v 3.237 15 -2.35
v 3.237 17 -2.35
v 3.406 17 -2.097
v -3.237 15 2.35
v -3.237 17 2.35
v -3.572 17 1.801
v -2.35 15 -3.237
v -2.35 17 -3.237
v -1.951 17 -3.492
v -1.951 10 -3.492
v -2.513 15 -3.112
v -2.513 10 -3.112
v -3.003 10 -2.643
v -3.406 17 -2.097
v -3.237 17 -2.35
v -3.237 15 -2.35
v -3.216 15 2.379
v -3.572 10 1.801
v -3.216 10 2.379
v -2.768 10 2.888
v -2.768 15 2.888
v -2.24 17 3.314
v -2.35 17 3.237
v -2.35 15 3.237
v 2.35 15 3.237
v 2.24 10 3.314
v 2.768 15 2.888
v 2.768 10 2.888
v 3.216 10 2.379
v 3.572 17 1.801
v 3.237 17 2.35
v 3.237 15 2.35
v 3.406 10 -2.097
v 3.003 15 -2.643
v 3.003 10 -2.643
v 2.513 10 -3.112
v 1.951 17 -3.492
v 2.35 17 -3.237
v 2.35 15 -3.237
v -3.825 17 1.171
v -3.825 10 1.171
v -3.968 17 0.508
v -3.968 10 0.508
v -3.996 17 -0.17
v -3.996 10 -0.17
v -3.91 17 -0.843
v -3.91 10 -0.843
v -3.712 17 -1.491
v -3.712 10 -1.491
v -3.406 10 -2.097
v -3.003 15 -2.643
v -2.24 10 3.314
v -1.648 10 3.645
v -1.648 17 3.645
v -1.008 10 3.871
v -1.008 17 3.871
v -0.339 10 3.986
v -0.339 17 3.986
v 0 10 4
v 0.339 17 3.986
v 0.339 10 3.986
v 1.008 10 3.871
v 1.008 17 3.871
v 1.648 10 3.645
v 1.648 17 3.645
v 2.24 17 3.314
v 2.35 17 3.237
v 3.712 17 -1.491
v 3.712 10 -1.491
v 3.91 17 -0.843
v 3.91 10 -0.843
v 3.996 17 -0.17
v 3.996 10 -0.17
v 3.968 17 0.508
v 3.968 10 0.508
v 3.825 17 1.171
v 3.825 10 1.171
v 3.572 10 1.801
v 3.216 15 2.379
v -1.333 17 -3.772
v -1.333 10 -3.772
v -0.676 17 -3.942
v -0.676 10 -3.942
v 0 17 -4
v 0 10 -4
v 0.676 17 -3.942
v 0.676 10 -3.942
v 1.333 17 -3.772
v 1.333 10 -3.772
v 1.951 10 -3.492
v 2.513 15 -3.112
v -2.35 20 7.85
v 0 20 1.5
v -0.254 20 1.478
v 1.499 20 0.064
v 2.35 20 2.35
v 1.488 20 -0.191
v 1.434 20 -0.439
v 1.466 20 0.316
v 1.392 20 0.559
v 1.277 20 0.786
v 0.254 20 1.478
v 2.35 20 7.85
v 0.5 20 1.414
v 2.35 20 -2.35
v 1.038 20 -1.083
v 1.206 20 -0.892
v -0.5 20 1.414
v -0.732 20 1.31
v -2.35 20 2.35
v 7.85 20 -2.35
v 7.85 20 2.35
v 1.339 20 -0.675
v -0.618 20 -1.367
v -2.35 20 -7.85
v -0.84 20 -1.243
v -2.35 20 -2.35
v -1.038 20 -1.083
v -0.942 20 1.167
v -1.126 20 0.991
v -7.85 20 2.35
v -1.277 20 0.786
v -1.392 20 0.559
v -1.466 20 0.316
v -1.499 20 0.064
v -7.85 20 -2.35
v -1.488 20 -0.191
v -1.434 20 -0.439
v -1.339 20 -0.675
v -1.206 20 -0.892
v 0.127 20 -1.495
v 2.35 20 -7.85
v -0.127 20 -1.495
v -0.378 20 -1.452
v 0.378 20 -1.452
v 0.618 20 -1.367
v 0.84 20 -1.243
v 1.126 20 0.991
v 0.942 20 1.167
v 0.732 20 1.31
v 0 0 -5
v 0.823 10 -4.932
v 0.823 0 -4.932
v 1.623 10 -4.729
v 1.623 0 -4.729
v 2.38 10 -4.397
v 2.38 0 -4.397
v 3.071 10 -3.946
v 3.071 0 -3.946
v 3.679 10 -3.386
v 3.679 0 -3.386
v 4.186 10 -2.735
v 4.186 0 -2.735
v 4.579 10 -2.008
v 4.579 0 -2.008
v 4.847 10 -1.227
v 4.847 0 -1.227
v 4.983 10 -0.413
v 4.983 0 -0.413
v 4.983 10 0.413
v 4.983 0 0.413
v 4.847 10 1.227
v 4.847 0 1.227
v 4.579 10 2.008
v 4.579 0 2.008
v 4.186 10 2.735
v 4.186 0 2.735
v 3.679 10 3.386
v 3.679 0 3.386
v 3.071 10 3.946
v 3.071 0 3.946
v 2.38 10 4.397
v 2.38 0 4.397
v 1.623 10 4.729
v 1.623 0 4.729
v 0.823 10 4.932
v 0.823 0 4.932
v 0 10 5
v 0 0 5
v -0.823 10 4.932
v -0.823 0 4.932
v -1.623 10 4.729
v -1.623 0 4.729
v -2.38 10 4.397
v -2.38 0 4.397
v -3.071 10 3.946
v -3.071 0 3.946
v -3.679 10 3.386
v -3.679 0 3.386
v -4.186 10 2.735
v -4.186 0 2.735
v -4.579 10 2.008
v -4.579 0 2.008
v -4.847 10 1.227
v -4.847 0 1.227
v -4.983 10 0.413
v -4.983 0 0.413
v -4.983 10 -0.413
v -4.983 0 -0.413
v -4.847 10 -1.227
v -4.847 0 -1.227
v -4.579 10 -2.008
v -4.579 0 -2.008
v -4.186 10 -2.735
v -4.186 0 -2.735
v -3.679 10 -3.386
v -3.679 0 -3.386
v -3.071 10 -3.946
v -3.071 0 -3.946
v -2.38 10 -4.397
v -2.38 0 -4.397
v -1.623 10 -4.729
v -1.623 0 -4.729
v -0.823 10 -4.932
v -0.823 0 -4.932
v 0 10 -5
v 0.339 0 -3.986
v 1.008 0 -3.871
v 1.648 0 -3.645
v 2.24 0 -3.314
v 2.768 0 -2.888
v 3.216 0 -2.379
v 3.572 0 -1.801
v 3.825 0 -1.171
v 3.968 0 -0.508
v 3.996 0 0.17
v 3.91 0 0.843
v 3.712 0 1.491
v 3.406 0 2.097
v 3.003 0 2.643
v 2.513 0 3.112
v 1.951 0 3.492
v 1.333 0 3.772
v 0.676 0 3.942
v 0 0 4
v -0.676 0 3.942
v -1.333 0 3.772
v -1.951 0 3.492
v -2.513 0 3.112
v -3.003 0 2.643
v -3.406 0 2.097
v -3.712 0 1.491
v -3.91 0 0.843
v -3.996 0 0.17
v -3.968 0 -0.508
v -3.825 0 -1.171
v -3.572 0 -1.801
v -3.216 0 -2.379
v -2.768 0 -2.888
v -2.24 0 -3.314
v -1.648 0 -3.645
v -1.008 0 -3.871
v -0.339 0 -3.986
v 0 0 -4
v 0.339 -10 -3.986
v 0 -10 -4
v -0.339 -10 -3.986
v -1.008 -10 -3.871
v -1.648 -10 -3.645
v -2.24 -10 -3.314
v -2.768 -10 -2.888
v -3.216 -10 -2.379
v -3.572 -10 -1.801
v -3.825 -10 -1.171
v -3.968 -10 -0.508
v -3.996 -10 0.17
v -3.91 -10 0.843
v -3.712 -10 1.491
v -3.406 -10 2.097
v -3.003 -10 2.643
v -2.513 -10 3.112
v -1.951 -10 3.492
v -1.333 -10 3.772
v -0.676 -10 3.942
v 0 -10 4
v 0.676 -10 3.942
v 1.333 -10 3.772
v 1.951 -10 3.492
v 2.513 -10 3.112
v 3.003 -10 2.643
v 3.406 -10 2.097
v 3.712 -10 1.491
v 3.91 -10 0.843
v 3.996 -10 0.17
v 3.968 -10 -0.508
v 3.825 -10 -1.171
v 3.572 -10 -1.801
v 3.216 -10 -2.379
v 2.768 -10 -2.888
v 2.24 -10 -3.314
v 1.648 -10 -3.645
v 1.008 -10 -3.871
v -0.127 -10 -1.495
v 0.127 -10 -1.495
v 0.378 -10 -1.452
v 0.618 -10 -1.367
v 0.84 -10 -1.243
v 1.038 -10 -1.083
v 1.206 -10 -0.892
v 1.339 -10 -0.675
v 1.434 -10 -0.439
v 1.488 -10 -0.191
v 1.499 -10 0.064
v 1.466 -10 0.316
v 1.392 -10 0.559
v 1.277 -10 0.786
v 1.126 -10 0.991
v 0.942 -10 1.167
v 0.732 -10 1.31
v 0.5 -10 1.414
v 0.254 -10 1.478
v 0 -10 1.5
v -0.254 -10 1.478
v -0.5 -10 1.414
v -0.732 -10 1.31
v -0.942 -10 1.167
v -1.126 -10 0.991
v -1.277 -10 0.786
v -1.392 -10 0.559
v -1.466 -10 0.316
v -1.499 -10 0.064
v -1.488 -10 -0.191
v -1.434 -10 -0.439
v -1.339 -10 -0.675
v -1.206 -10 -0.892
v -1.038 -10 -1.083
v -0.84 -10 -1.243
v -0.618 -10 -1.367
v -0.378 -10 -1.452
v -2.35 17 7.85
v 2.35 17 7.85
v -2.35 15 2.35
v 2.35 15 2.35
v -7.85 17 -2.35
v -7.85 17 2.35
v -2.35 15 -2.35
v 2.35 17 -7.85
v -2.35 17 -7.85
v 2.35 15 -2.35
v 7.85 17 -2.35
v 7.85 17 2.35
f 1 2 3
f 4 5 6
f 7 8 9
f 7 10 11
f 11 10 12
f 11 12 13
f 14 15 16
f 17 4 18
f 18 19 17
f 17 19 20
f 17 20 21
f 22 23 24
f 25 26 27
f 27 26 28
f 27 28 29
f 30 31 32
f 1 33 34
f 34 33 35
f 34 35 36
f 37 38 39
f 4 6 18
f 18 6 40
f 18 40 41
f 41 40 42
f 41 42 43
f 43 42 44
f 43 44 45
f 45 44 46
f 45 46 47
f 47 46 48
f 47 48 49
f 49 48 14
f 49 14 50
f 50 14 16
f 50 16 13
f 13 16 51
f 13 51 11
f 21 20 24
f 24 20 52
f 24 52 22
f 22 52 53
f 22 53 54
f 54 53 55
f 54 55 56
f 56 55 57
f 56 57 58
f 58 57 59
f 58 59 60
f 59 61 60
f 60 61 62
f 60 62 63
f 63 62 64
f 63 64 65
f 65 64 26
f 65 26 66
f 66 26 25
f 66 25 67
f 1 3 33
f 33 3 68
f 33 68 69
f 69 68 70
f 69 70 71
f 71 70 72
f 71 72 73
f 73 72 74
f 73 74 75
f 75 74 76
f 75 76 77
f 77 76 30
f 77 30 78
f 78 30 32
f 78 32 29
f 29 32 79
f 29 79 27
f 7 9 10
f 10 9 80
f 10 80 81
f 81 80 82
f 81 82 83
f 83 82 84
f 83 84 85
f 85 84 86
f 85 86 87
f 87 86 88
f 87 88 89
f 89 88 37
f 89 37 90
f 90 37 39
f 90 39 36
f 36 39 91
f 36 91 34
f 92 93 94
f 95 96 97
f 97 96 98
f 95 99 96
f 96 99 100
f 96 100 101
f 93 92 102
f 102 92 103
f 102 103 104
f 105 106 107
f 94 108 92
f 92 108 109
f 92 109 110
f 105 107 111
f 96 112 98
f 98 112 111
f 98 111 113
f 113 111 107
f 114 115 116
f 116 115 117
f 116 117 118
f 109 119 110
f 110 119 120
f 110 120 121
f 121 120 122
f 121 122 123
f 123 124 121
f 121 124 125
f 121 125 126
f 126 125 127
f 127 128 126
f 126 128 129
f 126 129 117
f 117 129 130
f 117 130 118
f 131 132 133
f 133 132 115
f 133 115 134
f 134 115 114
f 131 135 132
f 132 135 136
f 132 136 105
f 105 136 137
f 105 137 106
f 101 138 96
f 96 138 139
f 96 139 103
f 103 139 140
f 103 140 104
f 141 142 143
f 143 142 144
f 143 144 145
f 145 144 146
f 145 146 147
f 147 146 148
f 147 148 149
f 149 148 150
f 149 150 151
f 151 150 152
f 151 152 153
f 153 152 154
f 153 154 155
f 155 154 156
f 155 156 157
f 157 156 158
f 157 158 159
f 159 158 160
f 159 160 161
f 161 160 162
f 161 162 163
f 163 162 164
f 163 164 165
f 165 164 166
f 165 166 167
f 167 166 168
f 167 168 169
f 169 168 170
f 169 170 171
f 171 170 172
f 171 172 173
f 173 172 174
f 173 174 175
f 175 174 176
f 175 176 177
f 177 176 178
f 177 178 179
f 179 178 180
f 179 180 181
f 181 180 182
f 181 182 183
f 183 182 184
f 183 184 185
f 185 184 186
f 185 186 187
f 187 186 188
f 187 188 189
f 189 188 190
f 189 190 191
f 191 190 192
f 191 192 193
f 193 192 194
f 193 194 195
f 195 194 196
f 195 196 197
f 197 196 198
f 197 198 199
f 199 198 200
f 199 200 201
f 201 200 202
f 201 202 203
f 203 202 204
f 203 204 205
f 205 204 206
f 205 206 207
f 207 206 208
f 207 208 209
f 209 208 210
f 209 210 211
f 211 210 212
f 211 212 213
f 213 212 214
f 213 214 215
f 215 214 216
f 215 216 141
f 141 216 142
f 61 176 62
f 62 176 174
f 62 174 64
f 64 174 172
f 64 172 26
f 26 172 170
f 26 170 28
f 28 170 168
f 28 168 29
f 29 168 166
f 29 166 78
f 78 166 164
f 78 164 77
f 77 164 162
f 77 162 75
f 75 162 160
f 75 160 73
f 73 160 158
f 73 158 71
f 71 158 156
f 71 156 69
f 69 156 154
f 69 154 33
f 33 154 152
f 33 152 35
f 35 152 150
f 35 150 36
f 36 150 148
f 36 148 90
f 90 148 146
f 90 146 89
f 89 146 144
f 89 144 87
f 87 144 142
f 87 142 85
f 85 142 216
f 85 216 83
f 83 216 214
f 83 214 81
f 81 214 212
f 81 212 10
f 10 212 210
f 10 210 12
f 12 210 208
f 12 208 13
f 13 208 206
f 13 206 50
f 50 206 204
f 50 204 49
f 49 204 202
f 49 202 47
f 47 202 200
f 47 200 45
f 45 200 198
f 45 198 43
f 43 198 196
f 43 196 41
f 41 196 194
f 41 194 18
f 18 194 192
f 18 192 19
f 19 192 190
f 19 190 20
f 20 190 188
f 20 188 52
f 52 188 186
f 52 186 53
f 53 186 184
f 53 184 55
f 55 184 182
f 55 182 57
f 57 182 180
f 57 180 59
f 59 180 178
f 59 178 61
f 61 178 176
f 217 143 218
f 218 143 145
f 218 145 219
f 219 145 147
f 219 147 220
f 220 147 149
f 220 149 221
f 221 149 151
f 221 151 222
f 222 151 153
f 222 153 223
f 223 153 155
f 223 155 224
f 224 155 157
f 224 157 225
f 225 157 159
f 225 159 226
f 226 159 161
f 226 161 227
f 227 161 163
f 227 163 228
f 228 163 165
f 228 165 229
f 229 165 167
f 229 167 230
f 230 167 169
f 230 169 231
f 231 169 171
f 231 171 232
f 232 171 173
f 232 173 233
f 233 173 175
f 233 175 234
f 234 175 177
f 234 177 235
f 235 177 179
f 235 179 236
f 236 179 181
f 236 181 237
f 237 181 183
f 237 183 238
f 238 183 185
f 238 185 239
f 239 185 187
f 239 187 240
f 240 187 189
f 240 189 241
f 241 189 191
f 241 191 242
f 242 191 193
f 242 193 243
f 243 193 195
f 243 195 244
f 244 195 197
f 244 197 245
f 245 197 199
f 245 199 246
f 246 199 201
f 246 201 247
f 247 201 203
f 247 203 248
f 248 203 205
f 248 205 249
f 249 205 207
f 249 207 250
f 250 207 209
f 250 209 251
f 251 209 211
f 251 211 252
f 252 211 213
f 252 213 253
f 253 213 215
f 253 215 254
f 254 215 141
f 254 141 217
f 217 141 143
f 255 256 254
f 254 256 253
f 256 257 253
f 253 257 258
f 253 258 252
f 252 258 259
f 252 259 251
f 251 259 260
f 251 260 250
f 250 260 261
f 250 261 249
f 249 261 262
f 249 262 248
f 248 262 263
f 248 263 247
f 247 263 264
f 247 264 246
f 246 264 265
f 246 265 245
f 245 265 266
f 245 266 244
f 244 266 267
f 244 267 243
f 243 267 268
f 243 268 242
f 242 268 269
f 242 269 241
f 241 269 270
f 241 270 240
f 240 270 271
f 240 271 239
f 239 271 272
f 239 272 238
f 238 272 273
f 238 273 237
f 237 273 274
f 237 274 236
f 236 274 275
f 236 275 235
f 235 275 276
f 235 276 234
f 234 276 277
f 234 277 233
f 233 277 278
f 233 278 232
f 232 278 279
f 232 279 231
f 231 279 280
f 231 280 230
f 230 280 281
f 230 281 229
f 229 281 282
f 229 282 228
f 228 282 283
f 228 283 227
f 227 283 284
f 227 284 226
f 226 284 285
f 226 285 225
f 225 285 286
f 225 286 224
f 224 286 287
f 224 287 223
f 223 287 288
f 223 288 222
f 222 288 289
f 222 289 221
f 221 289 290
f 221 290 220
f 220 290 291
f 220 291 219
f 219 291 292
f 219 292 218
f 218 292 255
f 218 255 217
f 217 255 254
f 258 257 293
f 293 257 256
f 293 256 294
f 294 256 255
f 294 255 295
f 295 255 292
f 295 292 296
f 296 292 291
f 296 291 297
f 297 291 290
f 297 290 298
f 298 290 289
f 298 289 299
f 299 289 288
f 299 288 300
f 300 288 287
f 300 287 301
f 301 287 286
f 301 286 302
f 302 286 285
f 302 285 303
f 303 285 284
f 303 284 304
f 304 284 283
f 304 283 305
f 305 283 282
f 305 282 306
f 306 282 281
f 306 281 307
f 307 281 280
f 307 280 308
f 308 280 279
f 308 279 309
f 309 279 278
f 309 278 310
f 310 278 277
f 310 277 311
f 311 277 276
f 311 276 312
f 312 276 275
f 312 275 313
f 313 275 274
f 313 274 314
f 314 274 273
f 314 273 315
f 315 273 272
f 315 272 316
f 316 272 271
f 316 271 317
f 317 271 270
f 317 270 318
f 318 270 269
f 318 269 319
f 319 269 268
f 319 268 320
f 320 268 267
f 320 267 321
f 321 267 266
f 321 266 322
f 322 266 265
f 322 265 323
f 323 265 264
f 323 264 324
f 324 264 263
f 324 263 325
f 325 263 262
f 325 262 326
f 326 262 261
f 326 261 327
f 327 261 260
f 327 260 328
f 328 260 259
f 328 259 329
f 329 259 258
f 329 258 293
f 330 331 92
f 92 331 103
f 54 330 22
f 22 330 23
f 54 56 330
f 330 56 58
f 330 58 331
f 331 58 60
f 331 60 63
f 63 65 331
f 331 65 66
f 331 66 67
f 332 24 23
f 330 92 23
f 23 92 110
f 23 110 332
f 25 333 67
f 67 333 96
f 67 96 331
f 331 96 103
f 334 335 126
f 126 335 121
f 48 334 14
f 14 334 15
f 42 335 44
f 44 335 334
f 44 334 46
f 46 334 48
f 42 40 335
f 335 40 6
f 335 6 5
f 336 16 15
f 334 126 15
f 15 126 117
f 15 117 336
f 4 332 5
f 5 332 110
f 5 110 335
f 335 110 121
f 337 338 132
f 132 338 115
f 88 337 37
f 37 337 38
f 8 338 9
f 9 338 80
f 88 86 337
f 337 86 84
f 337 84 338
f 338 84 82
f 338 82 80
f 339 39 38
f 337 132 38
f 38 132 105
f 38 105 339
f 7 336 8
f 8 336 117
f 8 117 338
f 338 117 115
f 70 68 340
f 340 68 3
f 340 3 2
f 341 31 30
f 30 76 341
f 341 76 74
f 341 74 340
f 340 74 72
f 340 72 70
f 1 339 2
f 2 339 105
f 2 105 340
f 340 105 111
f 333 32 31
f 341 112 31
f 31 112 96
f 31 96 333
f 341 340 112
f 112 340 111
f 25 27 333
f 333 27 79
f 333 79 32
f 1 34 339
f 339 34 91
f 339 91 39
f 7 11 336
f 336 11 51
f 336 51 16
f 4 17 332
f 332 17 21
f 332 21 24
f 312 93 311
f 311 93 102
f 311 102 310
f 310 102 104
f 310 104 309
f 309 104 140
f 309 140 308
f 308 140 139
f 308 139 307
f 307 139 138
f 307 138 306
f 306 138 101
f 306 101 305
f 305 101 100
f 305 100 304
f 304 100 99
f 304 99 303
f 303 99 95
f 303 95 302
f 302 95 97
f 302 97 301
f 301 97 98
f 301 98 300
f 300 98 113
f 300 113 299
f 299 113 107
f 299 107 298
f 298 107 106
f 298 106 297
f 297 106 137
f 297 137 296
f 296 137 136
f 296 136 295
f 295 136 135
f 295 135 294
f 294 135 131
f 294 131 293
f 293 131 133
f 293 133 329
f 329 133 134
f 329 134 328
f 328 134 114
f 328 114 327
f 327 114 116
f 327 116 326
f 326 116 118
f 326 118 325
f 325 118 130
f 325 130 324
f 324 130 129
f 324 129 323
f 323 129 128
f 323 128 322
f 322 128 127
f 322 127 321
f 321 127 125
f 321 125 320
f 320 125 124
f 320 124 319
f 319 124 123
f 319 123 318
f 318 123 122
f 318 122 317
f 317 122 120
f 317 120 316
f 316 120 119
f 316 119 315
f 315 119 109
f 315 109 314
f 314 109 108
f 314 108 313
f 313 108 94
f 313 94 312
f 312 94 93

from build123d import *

# Parameters (mm, degrees)
SKETCH_1_R          = 5
EXTRUDE_4_DEPTH     = 10
SKETCH_4_R          = 4
EXTRUDE_5_DEPTH     = 10
EXTRUDE_START       = 10
SKETCH_5_R          = 4
EXTRUDE_6_DEPTH     = 10
EXTRUDE_START_2     = -3
SKETCH_6_W          = 4.7
SKETCH_6_H          = 4.7
EXTRUDE_7_DEPTH     = 3
CUT_EXTRUDE_START   = -5
CUT_EXTRUDE_1_DEPTH = 5
SKETCH_8_R          = 1.5
CUT_EXTRUDE_2_DEPTH = 32.98820095


with BuildPart() as part:
    # 草图1 → 凸台-拉伸4 (new body)
    with BuildSketch(Plane(origin=(0, 0, 0), x_dir=(1, 0, 0), z_dir=(0, 1, 0))):
        with Locations(Location((0, 0, 0), (0, 0, 270))):
            Circle(SKETCH_1_R)
    extrude(amount=EXTRUDE_4_DEPTH)

    # 草图4 → 凸台-拉伸5 (add)
    with BuildSketch(Plane(origin=(0, 10, 0), x_dir=(1, 0, 0), z_dir=(0, 1, 0))):
        with Locations(Location((0, 0, 0), (0, 0, 270))):
            Circle(SKETCH_4_R)
    extrude(amount=EXTRUDE_5_DEPTH)

    # 草图5 → 凸台-拉伸6 (add)
    with BuildSketch(Plane.XZ.offset(EXTRUDE_START)):
        with Locations(Location((0, 0, 0), (0, 0, 90))):
            Circle(SKETCH_5_R)
    extrude(amount=-EXTRUDE_6_DEPTH)

    # 草图6 → 凸台-拉伸7 (add)
    with BuildSketch(Plane(origin=(0, 20, 0), x_dir=(1, 0, 0), z_dir=(0, 1, 0)).offset(EXTRUDE_START_2)):
        with BuildLine():
            Line((-7.85, 2.35), (-7.85, -2.35))
            Line((-7.85, -2.35), (-3.236896662, -2.35))
            ThreePointArc((-3.236896662, -2.35), (-4, 0), (-3.236896662, 2.35))
            Line((-3.236896662, 2.35), (-7.85, 2.35))
        make_face()
        with BuildLine():
            Line((-2.35, 7.85), (-2.35, 3.236896662))
            ThreePointArc((-2.35, 3.236896662), (0, 4), (2.35, 3.236896662))
            Line((2.35, 3.236896662), (2.35, 7.85))
            Line((2.35, 7.85), (-2.35, 7.85))
        make_face()
        with BuildLine():
            ThreePointArc((4, 0), (3.804443892, -1.235397376), (3.236896662, -2.35))
            Line((3.236896662, -2.35), (7.85, -2.35))
            Line((7.85, -2.35), (7.85, 2.35))
            Line((7.85, 2.35), (3.236896662, 2.35))
            ThreePointArc((3.236896662, 2.35), (3.804443892, 1.235397376), (4, 0))
        make_face()
        with BuildLine():
            ThreePointArc((2.35, -3.236896662), (0, -4), (-2.35, -3.236896662))
            Line((-2.35, -3.236896662), (-2.35, -7.85))
            Line((-2.35, -7.85), (2.35, -7.85))
            Line((2.35, -7.85), (2.35, -3.236896662))
        make_face()
        with BuildLine():
            Line((2.35, -2.35), (-2.35, -2.35))
            Line((-2.35, -2.35), (-2.35, -3.236896662))
            ThreePointArc((-2.35, -3.236896662), (0, -4), (2.35, -3.236896662))
            Line((2.35, -3.236896662), (2.35, -2.35))
        make_face()
        with BuildLine():
            Line((2.35, 2.35), (2.35, -2.35))
            Line((2.35, -2.35), (3.236896662, -2.35))
            ThreePointArc((3.236896662, -2.35), (3.804443892, -1.235397376), (4, 0))
            ThreePointArc((4, 0), (3.804443892, 1.235397376), (3.236896662, 2.35))
            Line((3.236896662, 2.35), (2.35, 2.35))
        make_face()
        with BuildLine():
            Line((-2.35, 3.236896662), (-2.35, 2.35))
            Line((-2.35, 2.35), (2.35, 2.35))
            Line((2.35, 2.35), (2.35, 3.236896662))
            ThreePointArc((2.35, 3.236896662), (0, 4), (-2.35, 3.236896662))
        make_face()
        with BuildLine():
            ThreePointArc((-3.236896662, 2.35), (-4, 0), (-3.236896662, -2.35))
            Line((-3.236896662, -2.35), (-2.35, -2.35))
            Line((-2.35, -2.35), (-2.35, 2.35))
            Line((-2.35, 2.35), (-3.236896662, 2.35))
        make_face()
        Rectangle(SKETCH_6_W, SKETCH_6_H)
    extrude(amount=EXTRUDE_7_DEPTH)

    # 草图7 → 切除-拉伸1 (cut)
    with BuildSketch(Plane(origin=(0, 20, 0), x_dir=(1, 0, 0), z_dir=(0, 1, 0)).offset(CUT_EXTRUDE_START)):
        with BuildLine():
            Line((-2.35, -2.35), (-3.236896662, -2.35))
            ThreePointArc((-3.236896662, -2.35), (-2.828427125, -2.828427125), (-2.35, -3.236896662))
            Line((-2.35, -3.236896662), (-2.35, -2.35))
        make_face()
        with BuildLine():
            Line((3.236896662, -2.35), (2.35, -2.35))
            Line((2.35, -2.35), (2.35, -3.236896662))
            ThreePointArc((2.35, -3.236896662), (2.828427125, -2.828427125), (3.236896662, -2.35))
        make_face()
        with BuildLine():
            Line((2.35, 3.236896662), (2.35, 2.35))
            Line((2.35, 2.35), (3.236896662, 2.35))
            ThreePointArc((3.236896662, 2.35), (2.828427125, 2.828427125), (2.35, 3.236896662))
        make_face()
        with BuildLine():
            ThreePointArc((-2.35, 3.236896662), (-2.828427125, 2.828427125), (-3.236896662, 2.35))
            Line((-3.236896662, 2.35), (-2.35, 2.35))
            Line((-2.35, 2.35), (-2.35, 3.236896662))
        make_face()
    extrude(amount=CUT_EXTRUDE_1_DEPTH, mode=Mode.SUBTRACT)

    # 草图8 → 切除-拉伸2 (cut, through all)
    with BuildSketch(Plane(origin=(0, 20, 0), x_dir=(1, 0, 0), z_dir=(0, 1, 0))):
        with Locations(Location((0, 0, 0), (0, 0, 270))):
            Circle(SKETCH_8_R)
    extrude(amount=-CUT_EXTRUDE_2_DEPTH, mode=Mode.SUBTRACT)


solid = part.part
